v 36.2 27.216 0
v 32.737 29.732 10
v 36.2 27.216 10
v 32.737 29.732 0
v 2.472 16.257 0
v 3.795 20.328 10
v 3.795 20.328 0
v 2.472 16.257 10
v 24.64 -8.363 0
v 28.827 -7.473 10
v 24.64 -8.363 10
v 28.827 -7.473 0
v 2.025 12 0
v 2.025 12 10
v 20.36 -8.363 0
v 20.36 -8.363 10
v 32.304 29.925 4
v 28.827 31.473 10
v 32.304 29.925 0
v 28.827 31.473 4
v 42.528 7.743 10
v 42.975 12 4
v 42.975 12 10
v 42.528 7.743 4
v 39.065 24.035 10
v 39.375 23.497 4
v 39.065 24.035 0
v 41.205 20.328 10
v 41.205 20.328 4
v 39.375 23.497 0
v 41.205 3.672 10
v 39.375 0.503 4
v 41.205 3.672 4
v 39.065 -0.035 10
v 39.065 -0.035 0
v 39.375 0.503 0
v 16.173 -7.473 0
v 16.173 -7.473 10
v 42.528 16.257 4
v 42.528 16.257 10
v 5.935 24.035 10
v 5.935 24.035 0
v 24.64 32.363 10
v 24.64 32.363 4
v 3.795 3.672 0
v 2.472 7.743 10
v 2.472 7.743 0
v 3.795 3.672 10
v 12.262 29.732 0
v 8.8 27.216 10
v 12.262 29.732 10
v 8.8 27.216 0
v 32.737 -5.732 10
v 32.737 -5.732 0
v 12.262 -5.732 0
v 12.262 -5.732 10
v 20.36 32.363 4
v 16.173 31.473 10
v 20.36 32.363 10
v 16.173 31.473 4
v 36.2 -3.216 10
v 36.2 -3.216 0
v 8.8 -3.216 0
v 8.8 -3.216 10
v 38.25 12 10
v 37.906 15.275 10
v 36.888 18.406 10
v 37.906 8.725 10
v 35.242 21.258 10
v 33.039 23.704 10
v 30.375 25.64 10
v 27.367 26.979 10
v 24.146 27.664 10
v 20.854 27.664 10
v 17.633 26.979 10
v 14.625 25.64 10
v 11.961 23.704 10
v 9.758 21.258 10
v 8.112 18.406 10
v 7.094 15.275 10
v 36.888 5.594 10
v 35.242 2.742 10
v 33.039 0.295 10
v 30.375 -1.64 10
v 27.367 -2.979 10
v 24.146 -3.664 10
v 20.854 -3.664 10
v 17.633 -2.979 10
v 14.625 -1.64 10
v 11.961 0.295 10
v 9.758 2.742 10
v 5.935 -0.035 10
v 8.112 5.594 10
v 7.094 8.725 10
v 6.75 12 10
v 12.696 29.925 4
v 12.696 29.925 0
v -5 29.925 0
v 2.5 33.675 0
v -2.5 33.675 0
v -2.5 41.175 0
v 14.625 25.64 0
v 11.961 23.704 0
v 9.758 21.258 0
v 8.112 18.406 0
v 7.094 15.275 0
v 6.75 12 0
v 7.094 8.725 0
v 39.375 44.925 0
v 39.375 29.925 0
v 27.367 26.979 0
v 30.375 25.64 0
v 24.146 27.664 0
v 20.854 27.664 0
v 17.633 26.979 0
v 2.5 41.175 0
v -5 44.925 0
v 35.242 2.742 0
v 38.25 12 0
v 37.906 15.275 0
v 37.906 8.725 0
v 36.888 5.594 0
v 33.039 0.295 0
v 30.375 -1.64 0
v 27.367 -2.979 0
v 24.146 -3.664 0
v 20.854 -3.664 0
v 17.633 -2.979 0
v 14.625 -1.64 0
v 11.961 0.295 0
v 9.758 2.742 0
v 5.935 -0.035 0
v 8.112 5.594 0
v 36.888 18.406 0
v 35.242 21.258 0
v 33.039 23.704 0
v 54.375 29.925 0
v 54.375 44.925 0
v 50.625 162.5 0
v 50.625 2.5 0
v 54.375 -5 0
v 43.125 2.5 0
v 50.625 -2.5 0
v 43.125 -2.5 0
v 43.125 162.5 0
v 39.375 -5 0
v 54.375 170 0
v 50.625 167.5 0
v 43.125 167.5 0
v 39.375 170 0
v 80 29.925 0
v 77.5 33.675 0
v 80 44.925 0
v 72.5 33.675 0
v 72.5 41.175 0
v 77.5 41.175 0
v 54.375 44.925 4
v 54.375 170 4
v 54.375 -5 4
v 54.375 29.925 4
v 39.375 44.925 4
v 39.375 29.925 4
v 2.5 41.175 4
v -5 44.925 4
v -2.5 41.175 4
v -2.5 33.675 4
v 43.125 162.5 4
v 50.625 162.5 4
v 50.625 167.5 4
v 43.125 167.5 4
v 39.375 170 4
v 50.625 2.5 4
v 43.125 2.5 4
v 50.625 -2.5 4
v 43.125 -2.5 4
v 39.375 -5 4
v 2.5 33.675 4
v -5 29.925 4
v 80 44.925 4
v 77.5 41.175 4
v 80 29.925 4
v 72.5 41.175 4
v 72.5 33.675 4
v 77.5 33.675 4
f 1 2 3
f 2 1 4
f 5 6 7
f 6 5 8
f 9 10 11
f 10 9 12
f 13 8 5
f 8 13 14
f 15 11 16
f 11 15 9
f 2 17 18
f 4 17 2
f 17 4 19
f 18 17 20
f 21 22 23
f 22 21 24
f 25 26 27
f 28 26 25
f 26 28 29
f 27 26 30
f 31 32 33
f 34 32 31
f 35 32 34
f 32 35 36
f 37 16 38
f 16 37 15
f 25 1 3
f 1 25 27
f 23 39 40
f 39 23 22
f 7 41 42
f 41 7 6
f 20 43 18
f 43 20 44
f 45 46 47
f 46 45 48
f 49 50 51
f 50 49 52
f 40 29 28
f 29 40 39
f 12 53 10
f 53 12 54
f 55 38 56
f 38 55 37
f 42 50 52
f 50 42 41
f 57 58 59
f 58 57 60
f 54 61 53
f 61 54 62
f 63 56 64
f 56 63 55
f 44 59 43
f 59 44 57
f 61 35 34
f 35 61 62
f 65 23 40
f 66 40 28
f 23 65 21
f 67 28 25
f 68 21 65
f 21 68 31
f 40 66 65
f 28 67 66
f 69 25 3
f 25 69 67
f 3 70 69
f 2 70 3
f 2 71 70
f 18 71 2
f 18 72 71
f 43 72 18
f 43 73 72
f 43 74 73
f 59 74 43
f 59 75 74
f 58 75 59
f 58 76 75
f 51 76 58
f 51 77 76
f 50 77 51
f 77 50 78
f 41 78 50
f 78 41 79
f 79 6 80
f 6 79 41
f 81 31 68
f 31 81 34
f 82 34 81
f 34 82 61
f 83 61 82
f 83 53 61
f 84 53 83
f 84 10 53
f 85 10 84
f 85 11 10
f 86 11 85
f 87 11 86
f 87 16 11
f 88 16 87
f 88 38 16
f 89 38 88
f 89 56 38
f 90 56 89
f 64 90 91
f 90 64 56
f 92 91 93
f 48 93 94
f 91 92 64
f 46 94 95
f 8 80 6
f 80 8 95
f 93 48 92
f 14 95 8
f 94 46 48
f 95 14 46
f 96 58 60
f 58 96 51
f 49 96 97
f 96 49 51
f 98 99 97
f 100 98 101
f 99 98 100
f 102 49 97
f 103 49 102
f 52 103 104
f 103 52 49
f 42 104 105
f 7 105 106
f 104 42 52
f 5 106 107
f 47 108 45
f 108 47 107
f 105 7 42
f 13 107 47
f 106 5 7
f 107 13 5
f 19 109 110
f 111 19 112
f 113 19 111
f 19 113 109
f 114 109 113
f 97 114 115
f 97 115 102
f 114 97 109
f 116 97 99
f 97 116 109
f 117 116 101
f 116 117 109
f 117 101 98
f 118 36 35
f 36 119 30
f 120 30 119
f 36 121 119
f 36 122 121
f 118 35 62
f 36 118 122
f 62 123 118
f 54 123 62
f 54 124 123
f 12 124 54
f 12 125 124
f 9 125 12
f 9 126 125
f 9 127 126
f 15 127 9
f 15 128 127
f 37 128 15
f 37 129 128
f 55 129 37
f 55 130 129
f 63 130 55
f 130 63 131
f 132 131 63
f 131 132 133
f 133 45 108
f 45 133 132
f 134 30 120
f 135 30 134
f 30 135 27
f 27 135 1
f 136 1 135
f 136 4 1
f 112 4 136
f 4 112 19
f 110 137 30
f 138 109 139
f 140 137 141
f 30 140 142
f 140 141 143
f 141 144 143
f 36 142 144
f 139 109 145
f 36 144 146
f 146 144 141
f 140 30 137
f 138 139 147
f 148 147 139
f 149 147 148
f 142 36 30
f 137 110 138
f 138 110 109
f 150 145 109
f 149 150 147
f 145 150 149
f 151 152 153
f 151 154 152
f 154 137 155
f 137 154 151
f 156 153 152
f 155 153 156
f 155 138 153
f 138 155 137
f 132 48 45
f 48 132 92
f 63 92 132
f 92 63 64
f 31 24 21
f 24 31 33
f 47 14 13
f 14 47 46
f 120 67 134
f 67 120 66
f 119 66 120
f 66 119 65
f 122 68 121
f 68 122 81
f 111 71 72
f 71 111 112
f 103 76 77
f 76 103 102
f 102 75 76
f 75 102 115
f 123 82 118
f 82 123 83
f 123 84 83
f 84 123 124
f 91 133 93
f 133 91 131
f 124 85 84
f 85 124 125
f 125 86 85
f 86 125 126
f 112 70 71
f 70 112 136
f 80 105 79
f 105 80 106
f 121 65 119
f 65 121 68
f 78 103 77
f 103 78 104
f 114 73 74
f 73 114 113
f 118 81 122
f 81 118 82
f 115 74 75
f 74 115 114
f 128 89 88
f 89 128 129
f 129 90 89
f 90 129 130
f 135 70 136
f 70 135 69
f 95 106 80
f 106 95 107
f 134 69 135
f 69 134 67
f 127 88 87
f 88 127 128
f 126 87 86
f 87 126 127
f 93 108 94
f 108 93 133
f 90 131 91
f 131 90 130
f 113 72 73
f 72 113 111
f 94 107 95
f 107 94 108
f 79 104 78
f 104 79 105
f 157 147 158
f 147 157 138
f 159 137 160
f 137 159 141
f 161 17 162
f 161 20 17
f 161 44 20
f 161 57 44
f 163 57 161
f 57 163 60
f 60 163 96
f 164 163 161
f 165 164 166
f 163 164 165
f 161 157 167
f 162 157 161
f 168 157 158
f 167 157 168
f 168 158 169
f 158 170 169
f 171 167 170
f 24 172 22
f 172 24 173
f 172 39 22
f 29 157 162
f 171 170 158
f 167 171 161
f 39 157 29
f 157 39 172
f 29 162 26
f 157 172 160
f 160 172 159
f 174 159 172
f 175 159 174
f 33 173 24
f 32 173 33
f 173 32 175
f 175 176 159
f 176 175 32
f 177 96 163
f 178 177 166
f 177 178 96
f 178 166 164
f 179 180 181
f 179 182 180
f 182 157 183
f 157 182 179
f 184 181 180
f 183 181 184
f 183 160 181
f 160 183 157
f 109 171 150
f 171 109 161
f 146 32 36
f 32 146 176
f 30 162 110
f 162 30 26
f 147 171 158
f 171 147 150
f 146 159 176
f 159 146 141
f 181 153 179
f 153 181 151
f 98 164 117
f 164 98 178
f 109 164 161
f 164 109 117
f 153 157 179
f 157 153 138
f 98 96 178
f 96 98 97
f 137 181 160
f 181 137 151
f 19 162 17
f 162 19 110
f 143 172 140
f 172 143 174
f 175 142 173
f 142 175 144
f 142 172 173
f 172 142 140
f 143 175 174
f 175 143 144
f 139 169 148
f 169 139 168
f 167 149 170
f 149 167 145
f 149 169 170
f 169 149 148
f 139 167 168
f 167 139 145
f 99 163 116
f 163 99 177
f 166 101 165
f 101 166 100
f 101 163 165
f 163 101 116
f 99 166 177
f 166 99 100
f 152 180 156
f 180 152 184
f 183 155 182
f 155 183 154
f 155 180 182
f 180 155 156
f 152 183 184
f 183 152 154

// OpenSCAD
monocular_diameter = 31.5;
monocular_depth = 10;

phone_width = 75;
phone_height = 165;
phone_depth = 4;
phone_strip = 15;
phone_tooth = 5;

cam_x = 22.5;
cam_y = 12;

module monocular() {
    //holder for the monocular
    difference() {
        cylinder(d = 1.3 * monocular_diameter, h = monocular_depth );
        translate([0,0, -0.5*monocular_depth]) cylinder(d = monocular_diameter, h = 2*monocular_depth );
    }
}

module phone() {
    //attachement to the phone
    difference() {
        union() {
            //vertical bar
            translate([ 1.25*monocular_diameter, -phone_tooth, 0])
            cube([phone_strip, phone_height+2*phone_tooth, phone_depth]);
            
            //horizontal bar
            translate([ -phone_tooth, 0.95 * monocular_diameter, 0])
            cube([phone_width + 2*phone_tooth, phone_strip,  phone_depth]);
        }
    
        //holes for teeth: upper
        translate([1.25*monocular_diameter+0.25*phone_strip, -0.5*phone_tooth, -2*phone_depth])
        cube([0.5*phone_strip, phone_tooth, 5*phone_depth]);
    
        //holes for teeth: lower
        translate([1.25*monocular_diameter+0.25*phone_strip, phone_height-0.5*phone_tooth, -2*phone_depth])
        cube([0.5*phone_strip, phone_tooth, 5*phone_depth]);
    
        //holes for teeth: right
        translate([-0.5*phone_tooth, 0.95*monocular_diameter+0.25*phone_strip, -2*phone_depth])
        cube([phone_tooth, 0.5*phone_strip, 5*phone_depth]);
    
        //holes for teeth: left
        translate([phone_width-0.5*phone_tooth, 0.95*monocular_diameter+0.25*phone_strip, -2*phone_depth])
        cube([phone_tooth, 0.5*phone_strip, 5*phone_depth]);
    } 
}

translate([cam_x, cam_y, 0]) monocular();
phone();
